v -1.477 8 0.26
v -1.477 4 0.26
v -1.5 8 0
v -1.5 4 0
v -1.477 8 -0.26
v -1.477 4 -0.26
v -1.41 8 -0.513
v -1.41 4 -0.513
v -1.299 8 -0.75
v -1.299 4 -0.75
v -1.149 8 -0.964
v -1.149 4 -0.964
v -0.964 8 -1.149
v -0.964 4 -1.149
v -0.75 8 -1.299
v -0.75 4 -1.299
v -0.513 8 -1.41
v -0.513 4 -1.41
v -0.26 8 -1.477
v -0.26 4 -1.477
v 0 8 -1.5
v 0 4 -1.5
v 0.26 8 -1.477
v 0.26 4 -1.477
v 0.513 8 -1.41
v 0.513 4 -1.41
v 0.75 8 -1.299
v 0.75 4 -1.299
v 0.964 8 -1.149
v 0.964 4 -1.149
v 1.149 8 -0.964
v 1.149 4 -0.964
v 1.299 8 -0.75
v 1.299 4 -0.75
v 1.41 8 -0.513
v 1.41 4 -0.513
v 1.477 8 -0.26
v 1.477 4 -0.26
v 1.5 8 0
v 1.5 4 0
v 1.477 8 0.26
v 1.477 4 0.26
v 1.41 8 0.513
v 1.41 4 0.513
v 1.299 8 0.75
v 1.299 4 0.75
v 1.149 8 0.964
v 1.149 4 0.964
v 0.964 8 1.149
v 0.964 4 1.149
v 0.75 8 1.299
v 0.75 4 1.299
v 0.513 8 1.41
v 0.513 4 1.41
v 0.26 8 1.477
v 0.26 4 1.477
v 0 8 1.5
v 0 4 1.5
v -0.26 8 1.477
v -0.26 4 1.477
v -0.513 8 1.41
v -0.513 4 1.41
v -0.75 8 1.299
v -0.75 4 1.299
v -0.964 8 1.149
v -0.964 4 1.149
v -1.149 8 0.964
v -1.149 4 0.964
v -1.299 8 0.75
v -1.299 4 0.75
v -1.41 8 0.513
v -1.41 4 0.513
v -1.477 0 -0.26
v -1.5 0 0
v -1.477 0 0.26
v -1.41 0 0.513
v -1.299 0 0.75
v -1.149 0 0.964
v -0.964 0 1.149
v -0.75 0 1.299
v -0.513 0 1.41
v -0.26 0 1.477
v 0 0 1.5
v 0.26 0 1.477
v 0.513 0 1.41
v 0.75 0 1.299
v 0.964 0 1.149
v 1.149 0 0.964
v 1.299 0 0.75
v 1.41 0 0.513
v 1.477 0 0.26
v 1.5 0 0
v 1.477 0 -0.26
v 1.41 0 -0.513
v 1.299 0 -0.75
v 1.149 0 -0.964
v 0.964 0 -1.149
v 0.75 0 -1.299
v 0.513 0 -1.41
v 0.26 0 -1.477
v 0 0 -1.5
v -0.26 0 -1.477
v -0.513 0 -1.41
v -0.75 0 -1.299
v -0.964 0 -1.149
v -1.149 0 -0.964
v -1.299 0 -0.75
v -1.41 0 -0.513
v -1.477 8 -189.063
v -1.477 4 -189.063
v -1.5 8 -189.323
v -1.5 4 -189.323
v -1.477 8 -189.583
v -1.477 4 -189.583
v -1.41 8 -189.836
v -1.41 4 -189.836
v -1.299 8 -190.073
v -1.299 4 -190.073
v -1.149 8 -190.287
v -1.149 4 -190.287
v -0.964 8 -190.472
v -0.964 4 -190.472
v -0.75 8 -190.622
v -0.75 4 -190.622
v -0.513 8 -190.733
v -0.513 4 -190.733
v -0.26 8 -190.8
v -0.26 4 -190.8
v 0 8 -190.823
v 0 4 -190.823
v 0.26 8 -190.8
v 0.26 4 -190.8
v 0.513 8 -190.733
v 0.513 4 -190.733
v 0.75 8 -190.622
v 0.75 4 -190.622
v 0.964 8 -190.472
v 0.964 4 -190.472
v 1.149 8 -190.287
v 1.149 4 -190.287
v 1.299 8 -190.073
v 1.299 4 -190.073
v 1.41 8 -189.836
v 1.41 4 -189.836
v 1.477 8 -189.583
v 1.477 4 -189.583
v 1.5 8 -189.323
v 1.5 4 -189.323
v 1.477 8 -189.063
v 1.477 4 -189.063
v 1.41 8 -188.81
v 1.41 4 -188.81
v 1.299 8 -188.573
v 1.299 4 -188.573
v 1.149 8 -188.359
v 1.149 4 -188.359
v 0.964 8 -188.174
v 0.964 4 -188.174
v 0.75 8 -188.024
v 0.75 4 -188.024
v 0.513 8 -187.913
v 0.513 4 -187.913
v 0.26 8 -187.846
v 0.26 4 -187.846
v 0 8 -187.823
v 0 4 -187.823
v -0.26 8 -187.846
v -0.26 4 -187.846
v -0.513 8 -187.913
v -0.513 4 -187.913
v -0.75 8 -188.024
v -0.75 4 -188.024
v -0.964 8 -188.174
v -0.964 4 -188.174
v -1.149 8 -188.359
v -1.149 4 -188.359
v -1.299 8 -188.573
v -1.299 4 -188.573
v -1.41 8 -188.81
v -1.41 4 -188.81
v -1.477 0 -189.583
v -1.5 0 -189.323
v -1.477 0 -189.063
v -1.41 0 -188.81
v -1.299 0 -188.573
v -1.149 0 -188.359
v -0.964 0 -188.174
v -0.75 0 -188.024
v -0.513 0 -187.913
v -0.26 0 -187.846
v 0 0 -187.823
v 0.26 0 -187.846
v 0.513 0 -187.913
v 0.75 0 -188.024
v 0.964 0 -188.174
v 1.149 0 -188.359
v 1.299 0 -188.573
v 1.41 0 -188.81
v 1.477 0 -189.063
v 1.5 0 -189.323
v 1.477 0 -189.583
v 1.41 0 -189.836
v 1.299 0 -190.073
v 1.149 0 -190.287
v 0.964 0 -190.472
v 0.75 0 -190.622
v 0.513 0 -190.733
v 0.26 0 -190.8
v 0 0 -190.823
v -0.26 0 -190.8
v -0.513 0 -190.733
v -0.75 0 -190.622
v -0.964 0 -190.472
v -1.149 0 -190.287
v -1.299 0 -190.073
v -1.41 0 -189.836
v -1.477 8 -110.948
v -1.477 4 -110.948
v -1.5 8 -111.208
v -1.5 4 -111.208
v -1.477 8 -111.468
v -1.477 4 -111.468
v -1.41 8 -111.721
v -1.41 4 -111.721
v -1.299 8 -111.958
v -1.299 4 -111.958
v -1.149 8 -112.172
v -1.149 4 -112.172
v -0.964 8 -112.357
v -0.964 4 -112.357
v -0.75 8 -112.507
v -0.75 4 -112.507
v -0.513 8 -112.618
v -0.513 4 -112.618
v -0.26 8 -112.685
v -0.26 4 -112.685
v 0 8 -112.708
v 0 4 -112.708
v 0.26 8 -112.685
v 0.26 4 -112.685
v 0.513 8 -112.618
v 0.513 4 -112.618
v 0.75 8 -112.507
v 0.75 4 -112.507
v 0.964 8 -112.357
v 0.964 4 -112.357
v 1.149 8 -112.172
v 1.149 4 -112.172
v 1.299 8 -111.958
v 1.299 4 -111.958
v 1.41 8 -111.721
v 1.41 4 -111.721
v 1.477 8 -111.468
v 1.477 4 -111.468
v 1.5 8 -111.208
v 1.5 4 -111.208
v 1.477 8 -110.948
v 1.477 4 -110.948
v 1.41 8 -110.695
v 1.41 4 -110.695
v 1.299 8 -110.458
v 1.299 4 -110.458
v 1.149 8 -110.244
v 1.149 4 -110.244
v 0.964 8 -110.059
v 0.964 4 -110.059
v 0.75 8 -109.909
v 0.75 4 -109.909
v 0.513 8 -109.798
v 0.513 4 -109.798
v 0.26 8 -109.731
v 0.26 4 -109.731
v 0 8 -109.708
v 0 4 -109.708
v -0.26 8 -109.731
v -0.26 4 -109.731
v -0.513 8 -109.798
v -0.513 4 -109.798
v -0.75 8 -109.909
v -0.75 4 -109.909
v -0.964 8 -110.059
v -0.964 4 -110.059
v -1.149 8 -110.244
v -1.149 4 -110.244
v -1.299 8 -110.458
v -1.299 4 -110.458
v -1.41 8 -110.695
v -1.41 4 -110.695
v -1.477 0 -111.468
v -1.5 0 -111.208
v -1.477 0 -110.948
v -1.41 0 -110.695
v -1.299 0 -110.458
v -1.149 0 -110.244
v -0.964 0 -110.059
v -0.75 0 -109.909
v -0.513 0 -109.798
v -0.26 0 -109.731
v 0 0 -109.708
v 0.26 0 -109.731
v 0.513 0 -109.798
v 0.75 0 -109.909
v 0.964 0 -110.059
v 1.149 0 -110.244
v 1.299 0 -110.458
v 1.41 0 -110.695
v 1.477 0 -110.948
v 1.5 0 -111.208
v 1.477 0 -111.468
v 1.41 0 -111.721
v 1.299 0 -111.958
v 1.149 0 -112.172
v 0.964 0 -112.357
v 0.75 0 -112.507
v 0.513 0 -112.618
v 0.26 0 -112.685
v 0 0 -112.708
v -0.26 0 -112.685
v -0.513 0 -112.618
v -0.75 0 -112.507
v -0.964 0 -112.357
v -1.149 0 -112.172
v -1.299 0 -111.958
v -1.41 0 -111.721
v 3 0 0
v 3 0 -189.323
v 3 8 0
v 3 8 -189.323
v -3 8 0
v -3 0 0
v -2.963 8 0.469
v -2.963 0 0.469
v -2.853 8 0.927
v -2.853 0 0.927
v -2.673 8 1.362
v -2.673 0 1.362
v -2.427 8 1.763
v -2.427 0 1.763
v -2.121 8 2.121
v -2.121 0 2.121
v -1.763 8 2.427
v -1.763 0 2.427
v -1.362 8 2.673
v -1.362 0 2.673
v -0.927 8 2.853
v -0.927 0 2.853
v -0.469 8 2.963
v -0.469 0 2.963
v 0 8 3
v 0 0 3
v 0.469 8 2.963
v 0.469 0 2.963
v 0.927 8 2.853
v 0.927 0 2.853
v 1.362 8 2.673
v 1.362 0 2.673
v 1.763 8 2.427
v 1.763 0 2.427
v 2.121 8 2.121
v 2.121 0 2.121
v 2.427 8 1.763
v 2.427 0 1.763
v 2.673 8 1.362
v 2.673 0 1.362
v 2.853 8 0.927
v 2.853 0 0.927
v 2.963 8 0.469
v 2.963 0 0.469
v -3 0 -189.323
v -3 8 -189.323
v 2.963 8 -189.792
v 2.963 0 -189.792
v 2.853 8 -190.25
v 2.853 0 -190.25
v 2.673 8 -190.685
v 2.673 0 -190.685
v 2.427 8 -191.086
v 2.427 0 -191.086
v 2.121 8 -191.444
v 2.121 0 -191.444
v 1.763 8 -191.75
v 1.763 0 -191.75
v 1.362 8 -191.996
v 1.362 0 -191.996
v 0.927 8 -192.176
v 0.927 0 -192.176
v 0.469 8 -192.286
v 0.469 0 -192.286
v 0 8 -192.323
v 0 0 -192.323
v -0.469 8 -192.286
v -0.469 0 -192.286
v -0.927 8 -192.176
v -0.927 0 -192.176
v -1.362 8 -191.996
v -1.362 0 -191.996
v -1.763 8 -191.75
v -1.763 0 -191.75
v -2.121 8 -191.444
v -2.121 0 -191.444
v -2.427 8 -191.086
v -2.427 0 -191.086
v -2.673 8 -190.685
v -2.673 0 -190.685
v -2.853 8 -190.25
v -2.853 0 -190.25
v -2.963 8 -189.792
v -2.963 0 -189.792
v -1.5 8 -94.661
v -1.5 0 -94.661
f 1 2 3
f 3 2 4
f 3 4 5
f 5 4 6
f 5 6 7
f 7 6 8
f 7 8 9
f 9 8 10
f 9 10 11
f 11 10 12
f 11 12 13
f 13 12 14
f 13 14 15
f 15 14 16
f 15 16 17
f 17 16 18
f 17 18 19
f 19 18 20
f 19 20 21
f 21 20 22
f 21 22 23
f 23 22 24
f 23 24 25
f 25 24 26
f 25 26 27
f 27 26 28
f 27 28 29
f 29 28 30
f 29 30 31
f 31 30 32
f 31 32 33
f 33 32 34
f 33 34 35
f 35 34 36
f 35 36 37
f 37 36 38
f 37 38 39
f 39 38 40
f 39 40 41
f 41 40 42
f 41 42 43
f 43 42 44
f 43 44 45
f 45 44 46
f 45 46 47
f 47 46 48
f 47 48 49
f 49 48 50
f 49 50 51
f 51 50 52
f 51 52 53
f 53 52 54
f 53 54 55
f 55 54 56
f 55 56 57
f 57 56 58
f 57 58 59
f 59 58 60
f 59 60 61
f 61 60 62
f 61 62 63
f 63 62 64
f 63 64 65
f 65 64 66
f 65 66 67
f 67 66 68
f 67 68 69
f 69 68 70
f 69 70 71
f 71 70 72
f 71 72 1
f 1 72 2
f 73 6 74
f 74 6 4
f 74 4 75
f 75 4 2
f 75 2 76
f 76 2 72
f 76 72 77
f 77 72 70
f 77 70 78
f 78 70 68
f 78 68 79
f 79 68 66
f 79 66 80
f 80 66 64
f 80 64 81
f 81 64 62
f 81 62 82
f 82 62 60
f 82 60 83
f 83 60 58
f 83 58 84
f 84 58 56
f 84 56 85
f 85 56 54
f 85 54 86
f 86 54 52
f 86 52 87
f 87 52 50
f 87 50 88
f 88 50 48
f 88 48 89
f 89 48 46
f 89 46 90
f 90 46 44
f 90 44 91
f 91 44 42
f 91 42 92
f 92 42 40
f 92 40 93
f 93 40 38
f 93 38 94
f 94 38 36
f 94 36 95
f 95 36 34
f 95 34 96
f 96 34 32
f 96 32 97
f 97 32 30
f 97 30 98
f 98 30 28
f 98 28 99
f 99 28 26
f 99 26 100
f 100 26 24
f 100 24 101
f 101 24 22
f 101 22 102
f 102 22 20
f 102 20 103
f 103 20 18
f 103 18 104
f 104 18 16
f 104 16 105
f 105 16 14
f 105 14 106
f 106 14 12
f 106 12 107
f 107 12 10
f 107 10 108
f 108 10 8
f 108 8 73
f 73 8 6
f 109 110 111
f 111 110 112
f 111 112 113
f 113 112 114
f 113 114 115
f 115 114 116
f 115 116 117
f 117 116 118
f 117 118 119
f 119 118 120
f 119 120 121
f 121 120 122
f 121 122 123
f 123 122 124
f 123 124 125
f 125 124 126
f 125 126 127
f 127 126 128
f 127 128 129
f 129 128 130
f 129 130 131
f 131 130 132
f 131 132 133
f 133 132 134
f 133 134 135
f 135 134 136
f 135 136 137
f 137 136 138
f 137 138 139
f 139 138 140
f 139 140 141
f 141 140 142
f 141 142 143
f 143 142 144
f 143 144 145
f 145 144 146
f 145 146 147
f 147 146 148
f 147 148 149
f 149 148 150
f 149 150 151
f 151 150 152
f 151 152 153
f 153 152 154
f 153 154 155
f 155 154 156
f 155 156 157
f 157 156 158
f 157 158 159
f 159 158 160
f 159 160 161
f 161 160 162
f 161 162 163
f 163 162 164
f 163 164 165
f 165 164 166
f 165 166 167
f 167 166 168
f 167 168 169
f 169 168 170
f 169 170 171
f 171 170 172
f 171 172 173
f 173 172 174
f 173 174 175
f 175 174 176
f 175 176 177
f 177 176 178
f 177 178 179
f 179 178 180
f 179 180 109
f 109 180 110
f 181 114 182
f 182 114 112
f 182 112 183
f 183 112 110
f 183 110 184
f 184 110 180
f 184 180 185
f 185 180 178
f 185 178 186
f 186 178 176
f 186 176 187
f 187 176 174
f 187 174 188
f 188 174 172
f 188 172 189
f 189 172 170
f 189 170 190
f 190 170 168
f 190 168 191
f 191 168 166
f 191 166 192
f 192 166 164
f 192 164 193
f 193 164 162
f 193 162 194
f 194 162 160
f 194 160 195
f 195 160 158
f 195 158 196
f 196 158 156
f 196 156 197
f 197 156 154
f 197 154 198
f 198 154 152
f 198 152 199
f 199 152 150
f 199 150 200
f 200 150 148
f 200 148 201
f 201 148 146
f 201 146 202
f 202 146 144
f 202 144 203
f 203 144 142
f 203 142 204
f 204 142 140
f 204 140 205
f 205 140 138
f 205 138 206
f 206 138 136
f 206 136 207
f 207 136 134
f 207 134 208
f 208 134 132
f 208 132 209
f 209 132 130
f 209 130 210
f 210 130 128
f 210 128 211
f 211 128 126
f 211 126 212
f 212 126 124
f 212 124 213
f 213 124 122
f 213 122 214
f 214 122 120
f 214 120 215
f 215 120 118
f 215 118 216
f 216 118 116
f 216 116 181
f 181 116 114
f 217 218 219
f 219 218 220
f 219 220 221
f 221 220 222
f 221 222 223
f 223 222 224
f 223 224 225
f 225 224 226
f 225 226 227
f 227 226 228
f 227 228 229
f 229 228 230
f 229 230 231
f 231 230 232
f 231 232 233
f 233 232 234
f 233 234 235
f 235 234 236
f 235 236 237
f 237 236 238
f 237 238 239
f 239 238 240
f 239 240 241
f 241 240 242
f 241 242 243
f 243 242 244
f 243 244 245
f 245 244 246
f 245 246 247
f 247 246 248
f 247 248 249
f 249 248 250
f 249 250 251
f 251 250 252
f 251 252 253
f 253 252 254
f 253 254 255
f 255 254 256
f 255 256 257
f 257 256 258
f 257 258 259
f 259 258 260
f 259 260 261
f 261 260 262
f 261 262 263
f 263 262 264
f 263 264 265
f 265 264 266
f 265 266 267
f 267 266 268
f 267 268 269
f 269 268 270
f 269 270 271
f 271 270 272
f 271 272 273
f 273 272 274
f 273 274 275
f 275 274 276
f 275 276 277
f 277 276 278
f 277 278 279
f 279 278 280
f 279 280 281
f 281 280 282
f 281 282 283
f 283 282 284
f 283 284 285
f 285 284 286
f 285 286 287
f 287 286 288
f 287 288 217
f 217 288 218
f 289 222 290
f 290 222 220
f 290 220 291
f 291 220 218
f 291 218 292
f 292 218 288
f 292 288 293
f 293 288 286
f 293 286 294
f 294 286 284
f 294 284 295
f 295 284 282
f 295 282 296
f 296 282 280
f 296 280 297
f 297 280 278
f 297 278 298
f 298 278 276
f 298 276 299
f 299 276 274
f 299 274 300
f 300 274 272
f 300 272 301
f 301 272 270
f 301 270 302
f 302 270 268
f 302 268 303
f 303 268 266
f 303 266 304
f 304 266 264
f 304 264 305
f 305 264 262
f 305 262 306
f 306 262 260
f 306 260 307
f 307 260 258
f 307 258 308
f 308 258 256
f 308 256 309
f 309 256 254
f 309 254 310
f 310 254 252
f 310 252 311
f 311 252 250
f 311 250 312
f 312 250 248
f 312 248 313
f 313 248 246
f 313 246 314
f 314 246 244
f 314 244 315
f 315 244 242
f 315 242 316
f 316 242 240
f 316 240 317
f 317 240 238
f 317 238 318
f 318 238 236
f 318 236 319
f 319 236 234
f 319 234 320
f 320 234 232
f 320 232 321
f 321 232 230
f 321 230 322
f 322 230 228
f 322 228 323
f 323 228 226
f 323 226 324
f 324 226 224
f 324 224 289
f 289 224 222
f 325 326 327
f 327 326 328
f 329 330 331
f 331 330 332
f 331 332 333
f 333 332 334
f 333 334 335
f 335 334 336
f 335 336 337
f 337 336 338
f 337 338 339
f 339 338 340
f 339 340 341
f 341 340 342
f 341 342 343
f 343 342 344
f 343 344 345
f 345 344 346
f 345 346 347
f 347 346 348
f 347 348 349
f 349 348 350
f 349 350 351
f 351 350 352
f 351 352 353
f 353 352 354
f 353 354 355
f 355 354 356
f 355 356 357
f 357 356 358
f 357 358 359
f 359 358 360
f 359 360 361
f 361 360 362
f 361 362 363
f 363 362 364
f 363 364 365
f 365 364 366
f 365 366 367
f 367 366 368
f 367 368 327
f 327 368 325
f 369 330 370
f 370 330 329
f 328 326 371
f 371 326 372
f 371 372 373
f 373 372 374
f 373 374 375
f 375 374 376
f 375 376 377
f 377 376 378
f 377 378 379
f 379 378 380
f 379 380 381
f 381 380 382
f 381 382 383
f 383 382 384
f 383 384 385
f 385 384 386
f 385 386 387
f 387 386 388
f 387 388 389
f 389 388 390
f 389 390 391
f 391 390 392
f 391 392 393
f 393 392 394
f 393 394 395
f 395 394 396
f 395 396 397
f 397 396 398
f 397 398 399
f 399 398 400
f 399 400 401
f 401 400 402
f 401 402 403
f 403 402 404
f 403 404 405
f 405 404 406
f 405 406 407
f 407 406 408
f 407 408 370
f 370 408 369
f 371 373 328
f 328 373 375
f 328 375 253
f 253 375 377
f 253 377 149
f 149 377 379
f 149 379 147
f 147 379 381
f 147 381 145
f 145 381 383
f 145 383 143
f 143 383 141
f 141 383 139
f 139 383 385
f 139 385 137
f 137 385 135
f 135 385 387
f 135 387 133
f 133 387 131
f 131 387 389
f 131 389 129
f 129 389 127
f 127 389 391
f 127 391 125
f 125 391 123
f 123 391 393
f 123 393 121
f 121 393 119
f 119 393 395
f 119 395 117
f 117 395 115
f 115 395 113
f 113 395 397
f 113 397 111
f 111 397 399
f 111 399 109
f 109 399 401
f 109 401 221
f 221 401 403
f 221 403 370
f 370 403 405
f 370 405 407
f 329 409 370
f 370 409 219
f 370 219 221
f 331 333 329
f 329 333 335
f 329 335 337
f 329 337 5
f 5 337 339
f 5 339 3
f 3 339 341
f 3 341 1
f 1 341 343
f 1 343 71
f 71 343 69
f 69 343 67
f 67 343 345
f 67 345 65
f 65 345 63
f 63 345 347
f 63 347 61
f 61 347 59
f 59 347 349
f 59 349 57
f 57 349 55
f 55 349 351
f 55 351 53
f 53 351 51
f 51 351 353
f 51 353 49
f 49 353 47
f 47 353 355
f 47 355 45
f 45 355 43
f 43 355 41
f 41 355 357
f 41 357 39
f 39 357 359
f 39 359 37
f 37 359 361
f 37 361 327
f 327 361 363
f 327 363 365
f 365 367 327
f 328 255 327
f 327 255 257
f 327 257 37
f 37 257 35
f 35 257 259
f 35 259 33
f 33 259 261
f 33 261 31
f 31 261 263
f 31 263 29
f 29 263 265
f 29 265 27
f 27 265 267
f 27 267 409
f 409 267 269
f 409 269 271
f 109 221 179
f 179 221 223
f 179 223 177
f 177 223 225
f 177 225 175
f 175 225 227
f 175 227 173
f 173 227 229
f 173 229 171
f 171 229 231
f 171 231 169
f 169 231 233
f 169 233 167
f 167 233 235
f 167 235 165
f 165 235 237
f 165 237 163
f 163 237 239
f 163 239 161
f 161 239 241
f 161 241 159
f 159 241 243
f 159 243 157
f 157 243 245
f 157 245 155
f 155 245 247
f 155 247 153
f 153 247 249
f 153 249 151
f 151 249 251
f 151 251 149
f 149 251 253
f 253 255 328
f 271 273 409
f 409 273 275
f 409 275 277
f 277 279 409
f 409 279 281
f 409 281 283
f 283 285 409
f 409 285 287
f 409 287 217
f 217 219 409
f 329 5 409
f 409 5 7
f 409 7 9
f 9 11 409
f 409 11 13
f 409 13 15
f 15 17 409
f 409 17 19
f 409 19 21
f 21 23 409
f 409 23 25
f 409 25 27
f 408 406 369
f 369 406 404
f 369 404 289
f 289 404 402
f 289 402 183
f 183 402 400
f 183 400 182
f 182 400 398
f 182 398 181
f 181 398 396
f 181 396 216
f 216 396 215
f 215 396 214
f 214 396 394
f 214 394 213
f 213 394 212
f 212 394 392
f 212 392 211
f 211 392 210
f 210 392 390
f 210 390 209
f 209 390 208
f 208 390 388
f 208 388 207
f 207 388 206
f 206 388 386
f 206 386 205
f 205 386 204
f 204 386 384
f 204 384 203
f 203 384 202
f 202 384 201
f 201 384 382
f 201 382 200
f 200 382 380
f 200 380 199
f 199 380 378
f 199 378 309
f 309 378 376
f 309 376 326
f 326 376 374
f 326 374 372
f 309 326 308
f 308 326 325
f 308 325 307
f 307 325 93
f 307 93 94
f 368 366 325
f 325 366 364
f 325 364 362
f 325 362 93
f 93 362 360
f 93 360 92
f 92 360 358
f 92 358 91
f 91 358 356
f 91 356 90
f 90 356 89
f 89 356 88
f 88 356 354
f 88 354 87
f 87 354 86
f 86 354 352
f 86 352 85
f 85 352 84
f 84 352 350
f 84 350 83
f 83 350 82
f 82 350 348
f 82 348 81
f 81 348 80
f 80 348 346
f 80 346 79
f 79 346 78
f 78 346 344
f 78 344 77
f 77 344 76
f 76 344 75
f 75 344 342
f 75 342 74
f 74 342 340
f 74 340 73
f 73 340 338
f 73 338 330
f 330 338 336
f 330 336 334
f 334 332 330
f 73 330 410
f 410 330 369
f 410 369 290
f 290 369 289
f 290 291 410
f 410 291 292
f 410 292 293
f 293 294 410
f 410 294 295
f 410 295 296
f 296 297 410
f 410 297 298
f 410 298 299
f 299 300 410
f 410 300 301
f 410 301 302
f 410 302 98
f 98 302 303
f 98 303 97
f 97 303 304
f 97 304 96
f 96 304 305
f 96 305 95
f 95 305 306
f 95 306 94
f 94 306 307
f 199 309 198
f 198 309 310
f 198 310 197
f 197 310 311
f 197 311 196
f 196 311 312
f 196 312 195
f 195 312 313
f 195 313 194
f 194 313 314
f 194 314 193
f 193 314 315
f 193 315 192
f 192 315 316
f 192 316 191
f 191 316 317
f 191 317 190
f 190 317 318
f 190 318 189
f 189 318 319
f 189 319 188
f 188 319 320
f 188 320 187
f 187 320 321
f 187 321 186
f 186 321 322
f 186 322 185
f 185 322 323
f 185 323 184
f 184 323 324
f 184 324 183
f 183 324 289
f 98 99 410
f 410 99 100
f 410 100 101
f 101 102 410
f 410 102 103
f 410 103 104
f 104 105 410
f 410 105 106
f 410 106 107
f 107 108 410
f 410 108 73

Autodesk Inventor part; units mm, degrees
ref_plane "YZ Plane" through (0, 0, 0) normal (1, 0, 0) x (0, 1, 0)
ref_plane "XZ Plane" through (0, 0, 0) normal (0, 1, 0) x (-1, 0, 0)
ref_plane "XY Plane" through (0, 0, 0) normal (0, 0, 1) x (1, 0, 0)
sketch "Sketch1" plane through (0, 0, 0) normal (0, 1, 0) x (-1, 0, 0)
  line L0 (0, 0) -> (0, -189.323) construction
  line L1 (-3, 0) -> (-3, -189.323)
  line L2 (3, -189.323) -> (3, 0)
  arc A0 (3, 0) -> (-3, 0) centre (0, 0) ccw
  arc A1 (-3, -189.323) -> (3, -189.323) centre (0, -189.323) ccw
  circle A2 centre (0, 0) radius 1.5
  circle A3 centre (0, -189.323) radius 1.5
  circle A4 centre (0, -111.208) radius 1.5
  point P0 (0, -94.6615)
  dimension "d0" = 189.323
  dimension "d1" = 6
  dimension "d2" = 3
  dimension "d3" = 3
  dimension "d6" = 3
  dimension "d7" = 111.208
extrude "Extrusion1" add sketch "Sketch1" along normal blind 8
sketch "Sketch2" plane through (0, 0, 0) normal (0, -1, 0) x (1, 0, 0)
  arc A0 (-3, -189.323) -> (3, -189.323) centre (0, -189.323) ccw projected
  line L0 (3, 0) -> (3, -189.323) projected
  arc A1 (3, 0) -> (-3, 0) centre (0, 0) ccw projected
  line L1 (-3, -189.323) -> (-3, 0) projected
  circle A2 centre (0, -111.208) radius 1.5 projected
  circle A3 centre (0, -189.323) radius 1.5 projected
  circle A4 centre (0, 0) radius 1.5 projected
